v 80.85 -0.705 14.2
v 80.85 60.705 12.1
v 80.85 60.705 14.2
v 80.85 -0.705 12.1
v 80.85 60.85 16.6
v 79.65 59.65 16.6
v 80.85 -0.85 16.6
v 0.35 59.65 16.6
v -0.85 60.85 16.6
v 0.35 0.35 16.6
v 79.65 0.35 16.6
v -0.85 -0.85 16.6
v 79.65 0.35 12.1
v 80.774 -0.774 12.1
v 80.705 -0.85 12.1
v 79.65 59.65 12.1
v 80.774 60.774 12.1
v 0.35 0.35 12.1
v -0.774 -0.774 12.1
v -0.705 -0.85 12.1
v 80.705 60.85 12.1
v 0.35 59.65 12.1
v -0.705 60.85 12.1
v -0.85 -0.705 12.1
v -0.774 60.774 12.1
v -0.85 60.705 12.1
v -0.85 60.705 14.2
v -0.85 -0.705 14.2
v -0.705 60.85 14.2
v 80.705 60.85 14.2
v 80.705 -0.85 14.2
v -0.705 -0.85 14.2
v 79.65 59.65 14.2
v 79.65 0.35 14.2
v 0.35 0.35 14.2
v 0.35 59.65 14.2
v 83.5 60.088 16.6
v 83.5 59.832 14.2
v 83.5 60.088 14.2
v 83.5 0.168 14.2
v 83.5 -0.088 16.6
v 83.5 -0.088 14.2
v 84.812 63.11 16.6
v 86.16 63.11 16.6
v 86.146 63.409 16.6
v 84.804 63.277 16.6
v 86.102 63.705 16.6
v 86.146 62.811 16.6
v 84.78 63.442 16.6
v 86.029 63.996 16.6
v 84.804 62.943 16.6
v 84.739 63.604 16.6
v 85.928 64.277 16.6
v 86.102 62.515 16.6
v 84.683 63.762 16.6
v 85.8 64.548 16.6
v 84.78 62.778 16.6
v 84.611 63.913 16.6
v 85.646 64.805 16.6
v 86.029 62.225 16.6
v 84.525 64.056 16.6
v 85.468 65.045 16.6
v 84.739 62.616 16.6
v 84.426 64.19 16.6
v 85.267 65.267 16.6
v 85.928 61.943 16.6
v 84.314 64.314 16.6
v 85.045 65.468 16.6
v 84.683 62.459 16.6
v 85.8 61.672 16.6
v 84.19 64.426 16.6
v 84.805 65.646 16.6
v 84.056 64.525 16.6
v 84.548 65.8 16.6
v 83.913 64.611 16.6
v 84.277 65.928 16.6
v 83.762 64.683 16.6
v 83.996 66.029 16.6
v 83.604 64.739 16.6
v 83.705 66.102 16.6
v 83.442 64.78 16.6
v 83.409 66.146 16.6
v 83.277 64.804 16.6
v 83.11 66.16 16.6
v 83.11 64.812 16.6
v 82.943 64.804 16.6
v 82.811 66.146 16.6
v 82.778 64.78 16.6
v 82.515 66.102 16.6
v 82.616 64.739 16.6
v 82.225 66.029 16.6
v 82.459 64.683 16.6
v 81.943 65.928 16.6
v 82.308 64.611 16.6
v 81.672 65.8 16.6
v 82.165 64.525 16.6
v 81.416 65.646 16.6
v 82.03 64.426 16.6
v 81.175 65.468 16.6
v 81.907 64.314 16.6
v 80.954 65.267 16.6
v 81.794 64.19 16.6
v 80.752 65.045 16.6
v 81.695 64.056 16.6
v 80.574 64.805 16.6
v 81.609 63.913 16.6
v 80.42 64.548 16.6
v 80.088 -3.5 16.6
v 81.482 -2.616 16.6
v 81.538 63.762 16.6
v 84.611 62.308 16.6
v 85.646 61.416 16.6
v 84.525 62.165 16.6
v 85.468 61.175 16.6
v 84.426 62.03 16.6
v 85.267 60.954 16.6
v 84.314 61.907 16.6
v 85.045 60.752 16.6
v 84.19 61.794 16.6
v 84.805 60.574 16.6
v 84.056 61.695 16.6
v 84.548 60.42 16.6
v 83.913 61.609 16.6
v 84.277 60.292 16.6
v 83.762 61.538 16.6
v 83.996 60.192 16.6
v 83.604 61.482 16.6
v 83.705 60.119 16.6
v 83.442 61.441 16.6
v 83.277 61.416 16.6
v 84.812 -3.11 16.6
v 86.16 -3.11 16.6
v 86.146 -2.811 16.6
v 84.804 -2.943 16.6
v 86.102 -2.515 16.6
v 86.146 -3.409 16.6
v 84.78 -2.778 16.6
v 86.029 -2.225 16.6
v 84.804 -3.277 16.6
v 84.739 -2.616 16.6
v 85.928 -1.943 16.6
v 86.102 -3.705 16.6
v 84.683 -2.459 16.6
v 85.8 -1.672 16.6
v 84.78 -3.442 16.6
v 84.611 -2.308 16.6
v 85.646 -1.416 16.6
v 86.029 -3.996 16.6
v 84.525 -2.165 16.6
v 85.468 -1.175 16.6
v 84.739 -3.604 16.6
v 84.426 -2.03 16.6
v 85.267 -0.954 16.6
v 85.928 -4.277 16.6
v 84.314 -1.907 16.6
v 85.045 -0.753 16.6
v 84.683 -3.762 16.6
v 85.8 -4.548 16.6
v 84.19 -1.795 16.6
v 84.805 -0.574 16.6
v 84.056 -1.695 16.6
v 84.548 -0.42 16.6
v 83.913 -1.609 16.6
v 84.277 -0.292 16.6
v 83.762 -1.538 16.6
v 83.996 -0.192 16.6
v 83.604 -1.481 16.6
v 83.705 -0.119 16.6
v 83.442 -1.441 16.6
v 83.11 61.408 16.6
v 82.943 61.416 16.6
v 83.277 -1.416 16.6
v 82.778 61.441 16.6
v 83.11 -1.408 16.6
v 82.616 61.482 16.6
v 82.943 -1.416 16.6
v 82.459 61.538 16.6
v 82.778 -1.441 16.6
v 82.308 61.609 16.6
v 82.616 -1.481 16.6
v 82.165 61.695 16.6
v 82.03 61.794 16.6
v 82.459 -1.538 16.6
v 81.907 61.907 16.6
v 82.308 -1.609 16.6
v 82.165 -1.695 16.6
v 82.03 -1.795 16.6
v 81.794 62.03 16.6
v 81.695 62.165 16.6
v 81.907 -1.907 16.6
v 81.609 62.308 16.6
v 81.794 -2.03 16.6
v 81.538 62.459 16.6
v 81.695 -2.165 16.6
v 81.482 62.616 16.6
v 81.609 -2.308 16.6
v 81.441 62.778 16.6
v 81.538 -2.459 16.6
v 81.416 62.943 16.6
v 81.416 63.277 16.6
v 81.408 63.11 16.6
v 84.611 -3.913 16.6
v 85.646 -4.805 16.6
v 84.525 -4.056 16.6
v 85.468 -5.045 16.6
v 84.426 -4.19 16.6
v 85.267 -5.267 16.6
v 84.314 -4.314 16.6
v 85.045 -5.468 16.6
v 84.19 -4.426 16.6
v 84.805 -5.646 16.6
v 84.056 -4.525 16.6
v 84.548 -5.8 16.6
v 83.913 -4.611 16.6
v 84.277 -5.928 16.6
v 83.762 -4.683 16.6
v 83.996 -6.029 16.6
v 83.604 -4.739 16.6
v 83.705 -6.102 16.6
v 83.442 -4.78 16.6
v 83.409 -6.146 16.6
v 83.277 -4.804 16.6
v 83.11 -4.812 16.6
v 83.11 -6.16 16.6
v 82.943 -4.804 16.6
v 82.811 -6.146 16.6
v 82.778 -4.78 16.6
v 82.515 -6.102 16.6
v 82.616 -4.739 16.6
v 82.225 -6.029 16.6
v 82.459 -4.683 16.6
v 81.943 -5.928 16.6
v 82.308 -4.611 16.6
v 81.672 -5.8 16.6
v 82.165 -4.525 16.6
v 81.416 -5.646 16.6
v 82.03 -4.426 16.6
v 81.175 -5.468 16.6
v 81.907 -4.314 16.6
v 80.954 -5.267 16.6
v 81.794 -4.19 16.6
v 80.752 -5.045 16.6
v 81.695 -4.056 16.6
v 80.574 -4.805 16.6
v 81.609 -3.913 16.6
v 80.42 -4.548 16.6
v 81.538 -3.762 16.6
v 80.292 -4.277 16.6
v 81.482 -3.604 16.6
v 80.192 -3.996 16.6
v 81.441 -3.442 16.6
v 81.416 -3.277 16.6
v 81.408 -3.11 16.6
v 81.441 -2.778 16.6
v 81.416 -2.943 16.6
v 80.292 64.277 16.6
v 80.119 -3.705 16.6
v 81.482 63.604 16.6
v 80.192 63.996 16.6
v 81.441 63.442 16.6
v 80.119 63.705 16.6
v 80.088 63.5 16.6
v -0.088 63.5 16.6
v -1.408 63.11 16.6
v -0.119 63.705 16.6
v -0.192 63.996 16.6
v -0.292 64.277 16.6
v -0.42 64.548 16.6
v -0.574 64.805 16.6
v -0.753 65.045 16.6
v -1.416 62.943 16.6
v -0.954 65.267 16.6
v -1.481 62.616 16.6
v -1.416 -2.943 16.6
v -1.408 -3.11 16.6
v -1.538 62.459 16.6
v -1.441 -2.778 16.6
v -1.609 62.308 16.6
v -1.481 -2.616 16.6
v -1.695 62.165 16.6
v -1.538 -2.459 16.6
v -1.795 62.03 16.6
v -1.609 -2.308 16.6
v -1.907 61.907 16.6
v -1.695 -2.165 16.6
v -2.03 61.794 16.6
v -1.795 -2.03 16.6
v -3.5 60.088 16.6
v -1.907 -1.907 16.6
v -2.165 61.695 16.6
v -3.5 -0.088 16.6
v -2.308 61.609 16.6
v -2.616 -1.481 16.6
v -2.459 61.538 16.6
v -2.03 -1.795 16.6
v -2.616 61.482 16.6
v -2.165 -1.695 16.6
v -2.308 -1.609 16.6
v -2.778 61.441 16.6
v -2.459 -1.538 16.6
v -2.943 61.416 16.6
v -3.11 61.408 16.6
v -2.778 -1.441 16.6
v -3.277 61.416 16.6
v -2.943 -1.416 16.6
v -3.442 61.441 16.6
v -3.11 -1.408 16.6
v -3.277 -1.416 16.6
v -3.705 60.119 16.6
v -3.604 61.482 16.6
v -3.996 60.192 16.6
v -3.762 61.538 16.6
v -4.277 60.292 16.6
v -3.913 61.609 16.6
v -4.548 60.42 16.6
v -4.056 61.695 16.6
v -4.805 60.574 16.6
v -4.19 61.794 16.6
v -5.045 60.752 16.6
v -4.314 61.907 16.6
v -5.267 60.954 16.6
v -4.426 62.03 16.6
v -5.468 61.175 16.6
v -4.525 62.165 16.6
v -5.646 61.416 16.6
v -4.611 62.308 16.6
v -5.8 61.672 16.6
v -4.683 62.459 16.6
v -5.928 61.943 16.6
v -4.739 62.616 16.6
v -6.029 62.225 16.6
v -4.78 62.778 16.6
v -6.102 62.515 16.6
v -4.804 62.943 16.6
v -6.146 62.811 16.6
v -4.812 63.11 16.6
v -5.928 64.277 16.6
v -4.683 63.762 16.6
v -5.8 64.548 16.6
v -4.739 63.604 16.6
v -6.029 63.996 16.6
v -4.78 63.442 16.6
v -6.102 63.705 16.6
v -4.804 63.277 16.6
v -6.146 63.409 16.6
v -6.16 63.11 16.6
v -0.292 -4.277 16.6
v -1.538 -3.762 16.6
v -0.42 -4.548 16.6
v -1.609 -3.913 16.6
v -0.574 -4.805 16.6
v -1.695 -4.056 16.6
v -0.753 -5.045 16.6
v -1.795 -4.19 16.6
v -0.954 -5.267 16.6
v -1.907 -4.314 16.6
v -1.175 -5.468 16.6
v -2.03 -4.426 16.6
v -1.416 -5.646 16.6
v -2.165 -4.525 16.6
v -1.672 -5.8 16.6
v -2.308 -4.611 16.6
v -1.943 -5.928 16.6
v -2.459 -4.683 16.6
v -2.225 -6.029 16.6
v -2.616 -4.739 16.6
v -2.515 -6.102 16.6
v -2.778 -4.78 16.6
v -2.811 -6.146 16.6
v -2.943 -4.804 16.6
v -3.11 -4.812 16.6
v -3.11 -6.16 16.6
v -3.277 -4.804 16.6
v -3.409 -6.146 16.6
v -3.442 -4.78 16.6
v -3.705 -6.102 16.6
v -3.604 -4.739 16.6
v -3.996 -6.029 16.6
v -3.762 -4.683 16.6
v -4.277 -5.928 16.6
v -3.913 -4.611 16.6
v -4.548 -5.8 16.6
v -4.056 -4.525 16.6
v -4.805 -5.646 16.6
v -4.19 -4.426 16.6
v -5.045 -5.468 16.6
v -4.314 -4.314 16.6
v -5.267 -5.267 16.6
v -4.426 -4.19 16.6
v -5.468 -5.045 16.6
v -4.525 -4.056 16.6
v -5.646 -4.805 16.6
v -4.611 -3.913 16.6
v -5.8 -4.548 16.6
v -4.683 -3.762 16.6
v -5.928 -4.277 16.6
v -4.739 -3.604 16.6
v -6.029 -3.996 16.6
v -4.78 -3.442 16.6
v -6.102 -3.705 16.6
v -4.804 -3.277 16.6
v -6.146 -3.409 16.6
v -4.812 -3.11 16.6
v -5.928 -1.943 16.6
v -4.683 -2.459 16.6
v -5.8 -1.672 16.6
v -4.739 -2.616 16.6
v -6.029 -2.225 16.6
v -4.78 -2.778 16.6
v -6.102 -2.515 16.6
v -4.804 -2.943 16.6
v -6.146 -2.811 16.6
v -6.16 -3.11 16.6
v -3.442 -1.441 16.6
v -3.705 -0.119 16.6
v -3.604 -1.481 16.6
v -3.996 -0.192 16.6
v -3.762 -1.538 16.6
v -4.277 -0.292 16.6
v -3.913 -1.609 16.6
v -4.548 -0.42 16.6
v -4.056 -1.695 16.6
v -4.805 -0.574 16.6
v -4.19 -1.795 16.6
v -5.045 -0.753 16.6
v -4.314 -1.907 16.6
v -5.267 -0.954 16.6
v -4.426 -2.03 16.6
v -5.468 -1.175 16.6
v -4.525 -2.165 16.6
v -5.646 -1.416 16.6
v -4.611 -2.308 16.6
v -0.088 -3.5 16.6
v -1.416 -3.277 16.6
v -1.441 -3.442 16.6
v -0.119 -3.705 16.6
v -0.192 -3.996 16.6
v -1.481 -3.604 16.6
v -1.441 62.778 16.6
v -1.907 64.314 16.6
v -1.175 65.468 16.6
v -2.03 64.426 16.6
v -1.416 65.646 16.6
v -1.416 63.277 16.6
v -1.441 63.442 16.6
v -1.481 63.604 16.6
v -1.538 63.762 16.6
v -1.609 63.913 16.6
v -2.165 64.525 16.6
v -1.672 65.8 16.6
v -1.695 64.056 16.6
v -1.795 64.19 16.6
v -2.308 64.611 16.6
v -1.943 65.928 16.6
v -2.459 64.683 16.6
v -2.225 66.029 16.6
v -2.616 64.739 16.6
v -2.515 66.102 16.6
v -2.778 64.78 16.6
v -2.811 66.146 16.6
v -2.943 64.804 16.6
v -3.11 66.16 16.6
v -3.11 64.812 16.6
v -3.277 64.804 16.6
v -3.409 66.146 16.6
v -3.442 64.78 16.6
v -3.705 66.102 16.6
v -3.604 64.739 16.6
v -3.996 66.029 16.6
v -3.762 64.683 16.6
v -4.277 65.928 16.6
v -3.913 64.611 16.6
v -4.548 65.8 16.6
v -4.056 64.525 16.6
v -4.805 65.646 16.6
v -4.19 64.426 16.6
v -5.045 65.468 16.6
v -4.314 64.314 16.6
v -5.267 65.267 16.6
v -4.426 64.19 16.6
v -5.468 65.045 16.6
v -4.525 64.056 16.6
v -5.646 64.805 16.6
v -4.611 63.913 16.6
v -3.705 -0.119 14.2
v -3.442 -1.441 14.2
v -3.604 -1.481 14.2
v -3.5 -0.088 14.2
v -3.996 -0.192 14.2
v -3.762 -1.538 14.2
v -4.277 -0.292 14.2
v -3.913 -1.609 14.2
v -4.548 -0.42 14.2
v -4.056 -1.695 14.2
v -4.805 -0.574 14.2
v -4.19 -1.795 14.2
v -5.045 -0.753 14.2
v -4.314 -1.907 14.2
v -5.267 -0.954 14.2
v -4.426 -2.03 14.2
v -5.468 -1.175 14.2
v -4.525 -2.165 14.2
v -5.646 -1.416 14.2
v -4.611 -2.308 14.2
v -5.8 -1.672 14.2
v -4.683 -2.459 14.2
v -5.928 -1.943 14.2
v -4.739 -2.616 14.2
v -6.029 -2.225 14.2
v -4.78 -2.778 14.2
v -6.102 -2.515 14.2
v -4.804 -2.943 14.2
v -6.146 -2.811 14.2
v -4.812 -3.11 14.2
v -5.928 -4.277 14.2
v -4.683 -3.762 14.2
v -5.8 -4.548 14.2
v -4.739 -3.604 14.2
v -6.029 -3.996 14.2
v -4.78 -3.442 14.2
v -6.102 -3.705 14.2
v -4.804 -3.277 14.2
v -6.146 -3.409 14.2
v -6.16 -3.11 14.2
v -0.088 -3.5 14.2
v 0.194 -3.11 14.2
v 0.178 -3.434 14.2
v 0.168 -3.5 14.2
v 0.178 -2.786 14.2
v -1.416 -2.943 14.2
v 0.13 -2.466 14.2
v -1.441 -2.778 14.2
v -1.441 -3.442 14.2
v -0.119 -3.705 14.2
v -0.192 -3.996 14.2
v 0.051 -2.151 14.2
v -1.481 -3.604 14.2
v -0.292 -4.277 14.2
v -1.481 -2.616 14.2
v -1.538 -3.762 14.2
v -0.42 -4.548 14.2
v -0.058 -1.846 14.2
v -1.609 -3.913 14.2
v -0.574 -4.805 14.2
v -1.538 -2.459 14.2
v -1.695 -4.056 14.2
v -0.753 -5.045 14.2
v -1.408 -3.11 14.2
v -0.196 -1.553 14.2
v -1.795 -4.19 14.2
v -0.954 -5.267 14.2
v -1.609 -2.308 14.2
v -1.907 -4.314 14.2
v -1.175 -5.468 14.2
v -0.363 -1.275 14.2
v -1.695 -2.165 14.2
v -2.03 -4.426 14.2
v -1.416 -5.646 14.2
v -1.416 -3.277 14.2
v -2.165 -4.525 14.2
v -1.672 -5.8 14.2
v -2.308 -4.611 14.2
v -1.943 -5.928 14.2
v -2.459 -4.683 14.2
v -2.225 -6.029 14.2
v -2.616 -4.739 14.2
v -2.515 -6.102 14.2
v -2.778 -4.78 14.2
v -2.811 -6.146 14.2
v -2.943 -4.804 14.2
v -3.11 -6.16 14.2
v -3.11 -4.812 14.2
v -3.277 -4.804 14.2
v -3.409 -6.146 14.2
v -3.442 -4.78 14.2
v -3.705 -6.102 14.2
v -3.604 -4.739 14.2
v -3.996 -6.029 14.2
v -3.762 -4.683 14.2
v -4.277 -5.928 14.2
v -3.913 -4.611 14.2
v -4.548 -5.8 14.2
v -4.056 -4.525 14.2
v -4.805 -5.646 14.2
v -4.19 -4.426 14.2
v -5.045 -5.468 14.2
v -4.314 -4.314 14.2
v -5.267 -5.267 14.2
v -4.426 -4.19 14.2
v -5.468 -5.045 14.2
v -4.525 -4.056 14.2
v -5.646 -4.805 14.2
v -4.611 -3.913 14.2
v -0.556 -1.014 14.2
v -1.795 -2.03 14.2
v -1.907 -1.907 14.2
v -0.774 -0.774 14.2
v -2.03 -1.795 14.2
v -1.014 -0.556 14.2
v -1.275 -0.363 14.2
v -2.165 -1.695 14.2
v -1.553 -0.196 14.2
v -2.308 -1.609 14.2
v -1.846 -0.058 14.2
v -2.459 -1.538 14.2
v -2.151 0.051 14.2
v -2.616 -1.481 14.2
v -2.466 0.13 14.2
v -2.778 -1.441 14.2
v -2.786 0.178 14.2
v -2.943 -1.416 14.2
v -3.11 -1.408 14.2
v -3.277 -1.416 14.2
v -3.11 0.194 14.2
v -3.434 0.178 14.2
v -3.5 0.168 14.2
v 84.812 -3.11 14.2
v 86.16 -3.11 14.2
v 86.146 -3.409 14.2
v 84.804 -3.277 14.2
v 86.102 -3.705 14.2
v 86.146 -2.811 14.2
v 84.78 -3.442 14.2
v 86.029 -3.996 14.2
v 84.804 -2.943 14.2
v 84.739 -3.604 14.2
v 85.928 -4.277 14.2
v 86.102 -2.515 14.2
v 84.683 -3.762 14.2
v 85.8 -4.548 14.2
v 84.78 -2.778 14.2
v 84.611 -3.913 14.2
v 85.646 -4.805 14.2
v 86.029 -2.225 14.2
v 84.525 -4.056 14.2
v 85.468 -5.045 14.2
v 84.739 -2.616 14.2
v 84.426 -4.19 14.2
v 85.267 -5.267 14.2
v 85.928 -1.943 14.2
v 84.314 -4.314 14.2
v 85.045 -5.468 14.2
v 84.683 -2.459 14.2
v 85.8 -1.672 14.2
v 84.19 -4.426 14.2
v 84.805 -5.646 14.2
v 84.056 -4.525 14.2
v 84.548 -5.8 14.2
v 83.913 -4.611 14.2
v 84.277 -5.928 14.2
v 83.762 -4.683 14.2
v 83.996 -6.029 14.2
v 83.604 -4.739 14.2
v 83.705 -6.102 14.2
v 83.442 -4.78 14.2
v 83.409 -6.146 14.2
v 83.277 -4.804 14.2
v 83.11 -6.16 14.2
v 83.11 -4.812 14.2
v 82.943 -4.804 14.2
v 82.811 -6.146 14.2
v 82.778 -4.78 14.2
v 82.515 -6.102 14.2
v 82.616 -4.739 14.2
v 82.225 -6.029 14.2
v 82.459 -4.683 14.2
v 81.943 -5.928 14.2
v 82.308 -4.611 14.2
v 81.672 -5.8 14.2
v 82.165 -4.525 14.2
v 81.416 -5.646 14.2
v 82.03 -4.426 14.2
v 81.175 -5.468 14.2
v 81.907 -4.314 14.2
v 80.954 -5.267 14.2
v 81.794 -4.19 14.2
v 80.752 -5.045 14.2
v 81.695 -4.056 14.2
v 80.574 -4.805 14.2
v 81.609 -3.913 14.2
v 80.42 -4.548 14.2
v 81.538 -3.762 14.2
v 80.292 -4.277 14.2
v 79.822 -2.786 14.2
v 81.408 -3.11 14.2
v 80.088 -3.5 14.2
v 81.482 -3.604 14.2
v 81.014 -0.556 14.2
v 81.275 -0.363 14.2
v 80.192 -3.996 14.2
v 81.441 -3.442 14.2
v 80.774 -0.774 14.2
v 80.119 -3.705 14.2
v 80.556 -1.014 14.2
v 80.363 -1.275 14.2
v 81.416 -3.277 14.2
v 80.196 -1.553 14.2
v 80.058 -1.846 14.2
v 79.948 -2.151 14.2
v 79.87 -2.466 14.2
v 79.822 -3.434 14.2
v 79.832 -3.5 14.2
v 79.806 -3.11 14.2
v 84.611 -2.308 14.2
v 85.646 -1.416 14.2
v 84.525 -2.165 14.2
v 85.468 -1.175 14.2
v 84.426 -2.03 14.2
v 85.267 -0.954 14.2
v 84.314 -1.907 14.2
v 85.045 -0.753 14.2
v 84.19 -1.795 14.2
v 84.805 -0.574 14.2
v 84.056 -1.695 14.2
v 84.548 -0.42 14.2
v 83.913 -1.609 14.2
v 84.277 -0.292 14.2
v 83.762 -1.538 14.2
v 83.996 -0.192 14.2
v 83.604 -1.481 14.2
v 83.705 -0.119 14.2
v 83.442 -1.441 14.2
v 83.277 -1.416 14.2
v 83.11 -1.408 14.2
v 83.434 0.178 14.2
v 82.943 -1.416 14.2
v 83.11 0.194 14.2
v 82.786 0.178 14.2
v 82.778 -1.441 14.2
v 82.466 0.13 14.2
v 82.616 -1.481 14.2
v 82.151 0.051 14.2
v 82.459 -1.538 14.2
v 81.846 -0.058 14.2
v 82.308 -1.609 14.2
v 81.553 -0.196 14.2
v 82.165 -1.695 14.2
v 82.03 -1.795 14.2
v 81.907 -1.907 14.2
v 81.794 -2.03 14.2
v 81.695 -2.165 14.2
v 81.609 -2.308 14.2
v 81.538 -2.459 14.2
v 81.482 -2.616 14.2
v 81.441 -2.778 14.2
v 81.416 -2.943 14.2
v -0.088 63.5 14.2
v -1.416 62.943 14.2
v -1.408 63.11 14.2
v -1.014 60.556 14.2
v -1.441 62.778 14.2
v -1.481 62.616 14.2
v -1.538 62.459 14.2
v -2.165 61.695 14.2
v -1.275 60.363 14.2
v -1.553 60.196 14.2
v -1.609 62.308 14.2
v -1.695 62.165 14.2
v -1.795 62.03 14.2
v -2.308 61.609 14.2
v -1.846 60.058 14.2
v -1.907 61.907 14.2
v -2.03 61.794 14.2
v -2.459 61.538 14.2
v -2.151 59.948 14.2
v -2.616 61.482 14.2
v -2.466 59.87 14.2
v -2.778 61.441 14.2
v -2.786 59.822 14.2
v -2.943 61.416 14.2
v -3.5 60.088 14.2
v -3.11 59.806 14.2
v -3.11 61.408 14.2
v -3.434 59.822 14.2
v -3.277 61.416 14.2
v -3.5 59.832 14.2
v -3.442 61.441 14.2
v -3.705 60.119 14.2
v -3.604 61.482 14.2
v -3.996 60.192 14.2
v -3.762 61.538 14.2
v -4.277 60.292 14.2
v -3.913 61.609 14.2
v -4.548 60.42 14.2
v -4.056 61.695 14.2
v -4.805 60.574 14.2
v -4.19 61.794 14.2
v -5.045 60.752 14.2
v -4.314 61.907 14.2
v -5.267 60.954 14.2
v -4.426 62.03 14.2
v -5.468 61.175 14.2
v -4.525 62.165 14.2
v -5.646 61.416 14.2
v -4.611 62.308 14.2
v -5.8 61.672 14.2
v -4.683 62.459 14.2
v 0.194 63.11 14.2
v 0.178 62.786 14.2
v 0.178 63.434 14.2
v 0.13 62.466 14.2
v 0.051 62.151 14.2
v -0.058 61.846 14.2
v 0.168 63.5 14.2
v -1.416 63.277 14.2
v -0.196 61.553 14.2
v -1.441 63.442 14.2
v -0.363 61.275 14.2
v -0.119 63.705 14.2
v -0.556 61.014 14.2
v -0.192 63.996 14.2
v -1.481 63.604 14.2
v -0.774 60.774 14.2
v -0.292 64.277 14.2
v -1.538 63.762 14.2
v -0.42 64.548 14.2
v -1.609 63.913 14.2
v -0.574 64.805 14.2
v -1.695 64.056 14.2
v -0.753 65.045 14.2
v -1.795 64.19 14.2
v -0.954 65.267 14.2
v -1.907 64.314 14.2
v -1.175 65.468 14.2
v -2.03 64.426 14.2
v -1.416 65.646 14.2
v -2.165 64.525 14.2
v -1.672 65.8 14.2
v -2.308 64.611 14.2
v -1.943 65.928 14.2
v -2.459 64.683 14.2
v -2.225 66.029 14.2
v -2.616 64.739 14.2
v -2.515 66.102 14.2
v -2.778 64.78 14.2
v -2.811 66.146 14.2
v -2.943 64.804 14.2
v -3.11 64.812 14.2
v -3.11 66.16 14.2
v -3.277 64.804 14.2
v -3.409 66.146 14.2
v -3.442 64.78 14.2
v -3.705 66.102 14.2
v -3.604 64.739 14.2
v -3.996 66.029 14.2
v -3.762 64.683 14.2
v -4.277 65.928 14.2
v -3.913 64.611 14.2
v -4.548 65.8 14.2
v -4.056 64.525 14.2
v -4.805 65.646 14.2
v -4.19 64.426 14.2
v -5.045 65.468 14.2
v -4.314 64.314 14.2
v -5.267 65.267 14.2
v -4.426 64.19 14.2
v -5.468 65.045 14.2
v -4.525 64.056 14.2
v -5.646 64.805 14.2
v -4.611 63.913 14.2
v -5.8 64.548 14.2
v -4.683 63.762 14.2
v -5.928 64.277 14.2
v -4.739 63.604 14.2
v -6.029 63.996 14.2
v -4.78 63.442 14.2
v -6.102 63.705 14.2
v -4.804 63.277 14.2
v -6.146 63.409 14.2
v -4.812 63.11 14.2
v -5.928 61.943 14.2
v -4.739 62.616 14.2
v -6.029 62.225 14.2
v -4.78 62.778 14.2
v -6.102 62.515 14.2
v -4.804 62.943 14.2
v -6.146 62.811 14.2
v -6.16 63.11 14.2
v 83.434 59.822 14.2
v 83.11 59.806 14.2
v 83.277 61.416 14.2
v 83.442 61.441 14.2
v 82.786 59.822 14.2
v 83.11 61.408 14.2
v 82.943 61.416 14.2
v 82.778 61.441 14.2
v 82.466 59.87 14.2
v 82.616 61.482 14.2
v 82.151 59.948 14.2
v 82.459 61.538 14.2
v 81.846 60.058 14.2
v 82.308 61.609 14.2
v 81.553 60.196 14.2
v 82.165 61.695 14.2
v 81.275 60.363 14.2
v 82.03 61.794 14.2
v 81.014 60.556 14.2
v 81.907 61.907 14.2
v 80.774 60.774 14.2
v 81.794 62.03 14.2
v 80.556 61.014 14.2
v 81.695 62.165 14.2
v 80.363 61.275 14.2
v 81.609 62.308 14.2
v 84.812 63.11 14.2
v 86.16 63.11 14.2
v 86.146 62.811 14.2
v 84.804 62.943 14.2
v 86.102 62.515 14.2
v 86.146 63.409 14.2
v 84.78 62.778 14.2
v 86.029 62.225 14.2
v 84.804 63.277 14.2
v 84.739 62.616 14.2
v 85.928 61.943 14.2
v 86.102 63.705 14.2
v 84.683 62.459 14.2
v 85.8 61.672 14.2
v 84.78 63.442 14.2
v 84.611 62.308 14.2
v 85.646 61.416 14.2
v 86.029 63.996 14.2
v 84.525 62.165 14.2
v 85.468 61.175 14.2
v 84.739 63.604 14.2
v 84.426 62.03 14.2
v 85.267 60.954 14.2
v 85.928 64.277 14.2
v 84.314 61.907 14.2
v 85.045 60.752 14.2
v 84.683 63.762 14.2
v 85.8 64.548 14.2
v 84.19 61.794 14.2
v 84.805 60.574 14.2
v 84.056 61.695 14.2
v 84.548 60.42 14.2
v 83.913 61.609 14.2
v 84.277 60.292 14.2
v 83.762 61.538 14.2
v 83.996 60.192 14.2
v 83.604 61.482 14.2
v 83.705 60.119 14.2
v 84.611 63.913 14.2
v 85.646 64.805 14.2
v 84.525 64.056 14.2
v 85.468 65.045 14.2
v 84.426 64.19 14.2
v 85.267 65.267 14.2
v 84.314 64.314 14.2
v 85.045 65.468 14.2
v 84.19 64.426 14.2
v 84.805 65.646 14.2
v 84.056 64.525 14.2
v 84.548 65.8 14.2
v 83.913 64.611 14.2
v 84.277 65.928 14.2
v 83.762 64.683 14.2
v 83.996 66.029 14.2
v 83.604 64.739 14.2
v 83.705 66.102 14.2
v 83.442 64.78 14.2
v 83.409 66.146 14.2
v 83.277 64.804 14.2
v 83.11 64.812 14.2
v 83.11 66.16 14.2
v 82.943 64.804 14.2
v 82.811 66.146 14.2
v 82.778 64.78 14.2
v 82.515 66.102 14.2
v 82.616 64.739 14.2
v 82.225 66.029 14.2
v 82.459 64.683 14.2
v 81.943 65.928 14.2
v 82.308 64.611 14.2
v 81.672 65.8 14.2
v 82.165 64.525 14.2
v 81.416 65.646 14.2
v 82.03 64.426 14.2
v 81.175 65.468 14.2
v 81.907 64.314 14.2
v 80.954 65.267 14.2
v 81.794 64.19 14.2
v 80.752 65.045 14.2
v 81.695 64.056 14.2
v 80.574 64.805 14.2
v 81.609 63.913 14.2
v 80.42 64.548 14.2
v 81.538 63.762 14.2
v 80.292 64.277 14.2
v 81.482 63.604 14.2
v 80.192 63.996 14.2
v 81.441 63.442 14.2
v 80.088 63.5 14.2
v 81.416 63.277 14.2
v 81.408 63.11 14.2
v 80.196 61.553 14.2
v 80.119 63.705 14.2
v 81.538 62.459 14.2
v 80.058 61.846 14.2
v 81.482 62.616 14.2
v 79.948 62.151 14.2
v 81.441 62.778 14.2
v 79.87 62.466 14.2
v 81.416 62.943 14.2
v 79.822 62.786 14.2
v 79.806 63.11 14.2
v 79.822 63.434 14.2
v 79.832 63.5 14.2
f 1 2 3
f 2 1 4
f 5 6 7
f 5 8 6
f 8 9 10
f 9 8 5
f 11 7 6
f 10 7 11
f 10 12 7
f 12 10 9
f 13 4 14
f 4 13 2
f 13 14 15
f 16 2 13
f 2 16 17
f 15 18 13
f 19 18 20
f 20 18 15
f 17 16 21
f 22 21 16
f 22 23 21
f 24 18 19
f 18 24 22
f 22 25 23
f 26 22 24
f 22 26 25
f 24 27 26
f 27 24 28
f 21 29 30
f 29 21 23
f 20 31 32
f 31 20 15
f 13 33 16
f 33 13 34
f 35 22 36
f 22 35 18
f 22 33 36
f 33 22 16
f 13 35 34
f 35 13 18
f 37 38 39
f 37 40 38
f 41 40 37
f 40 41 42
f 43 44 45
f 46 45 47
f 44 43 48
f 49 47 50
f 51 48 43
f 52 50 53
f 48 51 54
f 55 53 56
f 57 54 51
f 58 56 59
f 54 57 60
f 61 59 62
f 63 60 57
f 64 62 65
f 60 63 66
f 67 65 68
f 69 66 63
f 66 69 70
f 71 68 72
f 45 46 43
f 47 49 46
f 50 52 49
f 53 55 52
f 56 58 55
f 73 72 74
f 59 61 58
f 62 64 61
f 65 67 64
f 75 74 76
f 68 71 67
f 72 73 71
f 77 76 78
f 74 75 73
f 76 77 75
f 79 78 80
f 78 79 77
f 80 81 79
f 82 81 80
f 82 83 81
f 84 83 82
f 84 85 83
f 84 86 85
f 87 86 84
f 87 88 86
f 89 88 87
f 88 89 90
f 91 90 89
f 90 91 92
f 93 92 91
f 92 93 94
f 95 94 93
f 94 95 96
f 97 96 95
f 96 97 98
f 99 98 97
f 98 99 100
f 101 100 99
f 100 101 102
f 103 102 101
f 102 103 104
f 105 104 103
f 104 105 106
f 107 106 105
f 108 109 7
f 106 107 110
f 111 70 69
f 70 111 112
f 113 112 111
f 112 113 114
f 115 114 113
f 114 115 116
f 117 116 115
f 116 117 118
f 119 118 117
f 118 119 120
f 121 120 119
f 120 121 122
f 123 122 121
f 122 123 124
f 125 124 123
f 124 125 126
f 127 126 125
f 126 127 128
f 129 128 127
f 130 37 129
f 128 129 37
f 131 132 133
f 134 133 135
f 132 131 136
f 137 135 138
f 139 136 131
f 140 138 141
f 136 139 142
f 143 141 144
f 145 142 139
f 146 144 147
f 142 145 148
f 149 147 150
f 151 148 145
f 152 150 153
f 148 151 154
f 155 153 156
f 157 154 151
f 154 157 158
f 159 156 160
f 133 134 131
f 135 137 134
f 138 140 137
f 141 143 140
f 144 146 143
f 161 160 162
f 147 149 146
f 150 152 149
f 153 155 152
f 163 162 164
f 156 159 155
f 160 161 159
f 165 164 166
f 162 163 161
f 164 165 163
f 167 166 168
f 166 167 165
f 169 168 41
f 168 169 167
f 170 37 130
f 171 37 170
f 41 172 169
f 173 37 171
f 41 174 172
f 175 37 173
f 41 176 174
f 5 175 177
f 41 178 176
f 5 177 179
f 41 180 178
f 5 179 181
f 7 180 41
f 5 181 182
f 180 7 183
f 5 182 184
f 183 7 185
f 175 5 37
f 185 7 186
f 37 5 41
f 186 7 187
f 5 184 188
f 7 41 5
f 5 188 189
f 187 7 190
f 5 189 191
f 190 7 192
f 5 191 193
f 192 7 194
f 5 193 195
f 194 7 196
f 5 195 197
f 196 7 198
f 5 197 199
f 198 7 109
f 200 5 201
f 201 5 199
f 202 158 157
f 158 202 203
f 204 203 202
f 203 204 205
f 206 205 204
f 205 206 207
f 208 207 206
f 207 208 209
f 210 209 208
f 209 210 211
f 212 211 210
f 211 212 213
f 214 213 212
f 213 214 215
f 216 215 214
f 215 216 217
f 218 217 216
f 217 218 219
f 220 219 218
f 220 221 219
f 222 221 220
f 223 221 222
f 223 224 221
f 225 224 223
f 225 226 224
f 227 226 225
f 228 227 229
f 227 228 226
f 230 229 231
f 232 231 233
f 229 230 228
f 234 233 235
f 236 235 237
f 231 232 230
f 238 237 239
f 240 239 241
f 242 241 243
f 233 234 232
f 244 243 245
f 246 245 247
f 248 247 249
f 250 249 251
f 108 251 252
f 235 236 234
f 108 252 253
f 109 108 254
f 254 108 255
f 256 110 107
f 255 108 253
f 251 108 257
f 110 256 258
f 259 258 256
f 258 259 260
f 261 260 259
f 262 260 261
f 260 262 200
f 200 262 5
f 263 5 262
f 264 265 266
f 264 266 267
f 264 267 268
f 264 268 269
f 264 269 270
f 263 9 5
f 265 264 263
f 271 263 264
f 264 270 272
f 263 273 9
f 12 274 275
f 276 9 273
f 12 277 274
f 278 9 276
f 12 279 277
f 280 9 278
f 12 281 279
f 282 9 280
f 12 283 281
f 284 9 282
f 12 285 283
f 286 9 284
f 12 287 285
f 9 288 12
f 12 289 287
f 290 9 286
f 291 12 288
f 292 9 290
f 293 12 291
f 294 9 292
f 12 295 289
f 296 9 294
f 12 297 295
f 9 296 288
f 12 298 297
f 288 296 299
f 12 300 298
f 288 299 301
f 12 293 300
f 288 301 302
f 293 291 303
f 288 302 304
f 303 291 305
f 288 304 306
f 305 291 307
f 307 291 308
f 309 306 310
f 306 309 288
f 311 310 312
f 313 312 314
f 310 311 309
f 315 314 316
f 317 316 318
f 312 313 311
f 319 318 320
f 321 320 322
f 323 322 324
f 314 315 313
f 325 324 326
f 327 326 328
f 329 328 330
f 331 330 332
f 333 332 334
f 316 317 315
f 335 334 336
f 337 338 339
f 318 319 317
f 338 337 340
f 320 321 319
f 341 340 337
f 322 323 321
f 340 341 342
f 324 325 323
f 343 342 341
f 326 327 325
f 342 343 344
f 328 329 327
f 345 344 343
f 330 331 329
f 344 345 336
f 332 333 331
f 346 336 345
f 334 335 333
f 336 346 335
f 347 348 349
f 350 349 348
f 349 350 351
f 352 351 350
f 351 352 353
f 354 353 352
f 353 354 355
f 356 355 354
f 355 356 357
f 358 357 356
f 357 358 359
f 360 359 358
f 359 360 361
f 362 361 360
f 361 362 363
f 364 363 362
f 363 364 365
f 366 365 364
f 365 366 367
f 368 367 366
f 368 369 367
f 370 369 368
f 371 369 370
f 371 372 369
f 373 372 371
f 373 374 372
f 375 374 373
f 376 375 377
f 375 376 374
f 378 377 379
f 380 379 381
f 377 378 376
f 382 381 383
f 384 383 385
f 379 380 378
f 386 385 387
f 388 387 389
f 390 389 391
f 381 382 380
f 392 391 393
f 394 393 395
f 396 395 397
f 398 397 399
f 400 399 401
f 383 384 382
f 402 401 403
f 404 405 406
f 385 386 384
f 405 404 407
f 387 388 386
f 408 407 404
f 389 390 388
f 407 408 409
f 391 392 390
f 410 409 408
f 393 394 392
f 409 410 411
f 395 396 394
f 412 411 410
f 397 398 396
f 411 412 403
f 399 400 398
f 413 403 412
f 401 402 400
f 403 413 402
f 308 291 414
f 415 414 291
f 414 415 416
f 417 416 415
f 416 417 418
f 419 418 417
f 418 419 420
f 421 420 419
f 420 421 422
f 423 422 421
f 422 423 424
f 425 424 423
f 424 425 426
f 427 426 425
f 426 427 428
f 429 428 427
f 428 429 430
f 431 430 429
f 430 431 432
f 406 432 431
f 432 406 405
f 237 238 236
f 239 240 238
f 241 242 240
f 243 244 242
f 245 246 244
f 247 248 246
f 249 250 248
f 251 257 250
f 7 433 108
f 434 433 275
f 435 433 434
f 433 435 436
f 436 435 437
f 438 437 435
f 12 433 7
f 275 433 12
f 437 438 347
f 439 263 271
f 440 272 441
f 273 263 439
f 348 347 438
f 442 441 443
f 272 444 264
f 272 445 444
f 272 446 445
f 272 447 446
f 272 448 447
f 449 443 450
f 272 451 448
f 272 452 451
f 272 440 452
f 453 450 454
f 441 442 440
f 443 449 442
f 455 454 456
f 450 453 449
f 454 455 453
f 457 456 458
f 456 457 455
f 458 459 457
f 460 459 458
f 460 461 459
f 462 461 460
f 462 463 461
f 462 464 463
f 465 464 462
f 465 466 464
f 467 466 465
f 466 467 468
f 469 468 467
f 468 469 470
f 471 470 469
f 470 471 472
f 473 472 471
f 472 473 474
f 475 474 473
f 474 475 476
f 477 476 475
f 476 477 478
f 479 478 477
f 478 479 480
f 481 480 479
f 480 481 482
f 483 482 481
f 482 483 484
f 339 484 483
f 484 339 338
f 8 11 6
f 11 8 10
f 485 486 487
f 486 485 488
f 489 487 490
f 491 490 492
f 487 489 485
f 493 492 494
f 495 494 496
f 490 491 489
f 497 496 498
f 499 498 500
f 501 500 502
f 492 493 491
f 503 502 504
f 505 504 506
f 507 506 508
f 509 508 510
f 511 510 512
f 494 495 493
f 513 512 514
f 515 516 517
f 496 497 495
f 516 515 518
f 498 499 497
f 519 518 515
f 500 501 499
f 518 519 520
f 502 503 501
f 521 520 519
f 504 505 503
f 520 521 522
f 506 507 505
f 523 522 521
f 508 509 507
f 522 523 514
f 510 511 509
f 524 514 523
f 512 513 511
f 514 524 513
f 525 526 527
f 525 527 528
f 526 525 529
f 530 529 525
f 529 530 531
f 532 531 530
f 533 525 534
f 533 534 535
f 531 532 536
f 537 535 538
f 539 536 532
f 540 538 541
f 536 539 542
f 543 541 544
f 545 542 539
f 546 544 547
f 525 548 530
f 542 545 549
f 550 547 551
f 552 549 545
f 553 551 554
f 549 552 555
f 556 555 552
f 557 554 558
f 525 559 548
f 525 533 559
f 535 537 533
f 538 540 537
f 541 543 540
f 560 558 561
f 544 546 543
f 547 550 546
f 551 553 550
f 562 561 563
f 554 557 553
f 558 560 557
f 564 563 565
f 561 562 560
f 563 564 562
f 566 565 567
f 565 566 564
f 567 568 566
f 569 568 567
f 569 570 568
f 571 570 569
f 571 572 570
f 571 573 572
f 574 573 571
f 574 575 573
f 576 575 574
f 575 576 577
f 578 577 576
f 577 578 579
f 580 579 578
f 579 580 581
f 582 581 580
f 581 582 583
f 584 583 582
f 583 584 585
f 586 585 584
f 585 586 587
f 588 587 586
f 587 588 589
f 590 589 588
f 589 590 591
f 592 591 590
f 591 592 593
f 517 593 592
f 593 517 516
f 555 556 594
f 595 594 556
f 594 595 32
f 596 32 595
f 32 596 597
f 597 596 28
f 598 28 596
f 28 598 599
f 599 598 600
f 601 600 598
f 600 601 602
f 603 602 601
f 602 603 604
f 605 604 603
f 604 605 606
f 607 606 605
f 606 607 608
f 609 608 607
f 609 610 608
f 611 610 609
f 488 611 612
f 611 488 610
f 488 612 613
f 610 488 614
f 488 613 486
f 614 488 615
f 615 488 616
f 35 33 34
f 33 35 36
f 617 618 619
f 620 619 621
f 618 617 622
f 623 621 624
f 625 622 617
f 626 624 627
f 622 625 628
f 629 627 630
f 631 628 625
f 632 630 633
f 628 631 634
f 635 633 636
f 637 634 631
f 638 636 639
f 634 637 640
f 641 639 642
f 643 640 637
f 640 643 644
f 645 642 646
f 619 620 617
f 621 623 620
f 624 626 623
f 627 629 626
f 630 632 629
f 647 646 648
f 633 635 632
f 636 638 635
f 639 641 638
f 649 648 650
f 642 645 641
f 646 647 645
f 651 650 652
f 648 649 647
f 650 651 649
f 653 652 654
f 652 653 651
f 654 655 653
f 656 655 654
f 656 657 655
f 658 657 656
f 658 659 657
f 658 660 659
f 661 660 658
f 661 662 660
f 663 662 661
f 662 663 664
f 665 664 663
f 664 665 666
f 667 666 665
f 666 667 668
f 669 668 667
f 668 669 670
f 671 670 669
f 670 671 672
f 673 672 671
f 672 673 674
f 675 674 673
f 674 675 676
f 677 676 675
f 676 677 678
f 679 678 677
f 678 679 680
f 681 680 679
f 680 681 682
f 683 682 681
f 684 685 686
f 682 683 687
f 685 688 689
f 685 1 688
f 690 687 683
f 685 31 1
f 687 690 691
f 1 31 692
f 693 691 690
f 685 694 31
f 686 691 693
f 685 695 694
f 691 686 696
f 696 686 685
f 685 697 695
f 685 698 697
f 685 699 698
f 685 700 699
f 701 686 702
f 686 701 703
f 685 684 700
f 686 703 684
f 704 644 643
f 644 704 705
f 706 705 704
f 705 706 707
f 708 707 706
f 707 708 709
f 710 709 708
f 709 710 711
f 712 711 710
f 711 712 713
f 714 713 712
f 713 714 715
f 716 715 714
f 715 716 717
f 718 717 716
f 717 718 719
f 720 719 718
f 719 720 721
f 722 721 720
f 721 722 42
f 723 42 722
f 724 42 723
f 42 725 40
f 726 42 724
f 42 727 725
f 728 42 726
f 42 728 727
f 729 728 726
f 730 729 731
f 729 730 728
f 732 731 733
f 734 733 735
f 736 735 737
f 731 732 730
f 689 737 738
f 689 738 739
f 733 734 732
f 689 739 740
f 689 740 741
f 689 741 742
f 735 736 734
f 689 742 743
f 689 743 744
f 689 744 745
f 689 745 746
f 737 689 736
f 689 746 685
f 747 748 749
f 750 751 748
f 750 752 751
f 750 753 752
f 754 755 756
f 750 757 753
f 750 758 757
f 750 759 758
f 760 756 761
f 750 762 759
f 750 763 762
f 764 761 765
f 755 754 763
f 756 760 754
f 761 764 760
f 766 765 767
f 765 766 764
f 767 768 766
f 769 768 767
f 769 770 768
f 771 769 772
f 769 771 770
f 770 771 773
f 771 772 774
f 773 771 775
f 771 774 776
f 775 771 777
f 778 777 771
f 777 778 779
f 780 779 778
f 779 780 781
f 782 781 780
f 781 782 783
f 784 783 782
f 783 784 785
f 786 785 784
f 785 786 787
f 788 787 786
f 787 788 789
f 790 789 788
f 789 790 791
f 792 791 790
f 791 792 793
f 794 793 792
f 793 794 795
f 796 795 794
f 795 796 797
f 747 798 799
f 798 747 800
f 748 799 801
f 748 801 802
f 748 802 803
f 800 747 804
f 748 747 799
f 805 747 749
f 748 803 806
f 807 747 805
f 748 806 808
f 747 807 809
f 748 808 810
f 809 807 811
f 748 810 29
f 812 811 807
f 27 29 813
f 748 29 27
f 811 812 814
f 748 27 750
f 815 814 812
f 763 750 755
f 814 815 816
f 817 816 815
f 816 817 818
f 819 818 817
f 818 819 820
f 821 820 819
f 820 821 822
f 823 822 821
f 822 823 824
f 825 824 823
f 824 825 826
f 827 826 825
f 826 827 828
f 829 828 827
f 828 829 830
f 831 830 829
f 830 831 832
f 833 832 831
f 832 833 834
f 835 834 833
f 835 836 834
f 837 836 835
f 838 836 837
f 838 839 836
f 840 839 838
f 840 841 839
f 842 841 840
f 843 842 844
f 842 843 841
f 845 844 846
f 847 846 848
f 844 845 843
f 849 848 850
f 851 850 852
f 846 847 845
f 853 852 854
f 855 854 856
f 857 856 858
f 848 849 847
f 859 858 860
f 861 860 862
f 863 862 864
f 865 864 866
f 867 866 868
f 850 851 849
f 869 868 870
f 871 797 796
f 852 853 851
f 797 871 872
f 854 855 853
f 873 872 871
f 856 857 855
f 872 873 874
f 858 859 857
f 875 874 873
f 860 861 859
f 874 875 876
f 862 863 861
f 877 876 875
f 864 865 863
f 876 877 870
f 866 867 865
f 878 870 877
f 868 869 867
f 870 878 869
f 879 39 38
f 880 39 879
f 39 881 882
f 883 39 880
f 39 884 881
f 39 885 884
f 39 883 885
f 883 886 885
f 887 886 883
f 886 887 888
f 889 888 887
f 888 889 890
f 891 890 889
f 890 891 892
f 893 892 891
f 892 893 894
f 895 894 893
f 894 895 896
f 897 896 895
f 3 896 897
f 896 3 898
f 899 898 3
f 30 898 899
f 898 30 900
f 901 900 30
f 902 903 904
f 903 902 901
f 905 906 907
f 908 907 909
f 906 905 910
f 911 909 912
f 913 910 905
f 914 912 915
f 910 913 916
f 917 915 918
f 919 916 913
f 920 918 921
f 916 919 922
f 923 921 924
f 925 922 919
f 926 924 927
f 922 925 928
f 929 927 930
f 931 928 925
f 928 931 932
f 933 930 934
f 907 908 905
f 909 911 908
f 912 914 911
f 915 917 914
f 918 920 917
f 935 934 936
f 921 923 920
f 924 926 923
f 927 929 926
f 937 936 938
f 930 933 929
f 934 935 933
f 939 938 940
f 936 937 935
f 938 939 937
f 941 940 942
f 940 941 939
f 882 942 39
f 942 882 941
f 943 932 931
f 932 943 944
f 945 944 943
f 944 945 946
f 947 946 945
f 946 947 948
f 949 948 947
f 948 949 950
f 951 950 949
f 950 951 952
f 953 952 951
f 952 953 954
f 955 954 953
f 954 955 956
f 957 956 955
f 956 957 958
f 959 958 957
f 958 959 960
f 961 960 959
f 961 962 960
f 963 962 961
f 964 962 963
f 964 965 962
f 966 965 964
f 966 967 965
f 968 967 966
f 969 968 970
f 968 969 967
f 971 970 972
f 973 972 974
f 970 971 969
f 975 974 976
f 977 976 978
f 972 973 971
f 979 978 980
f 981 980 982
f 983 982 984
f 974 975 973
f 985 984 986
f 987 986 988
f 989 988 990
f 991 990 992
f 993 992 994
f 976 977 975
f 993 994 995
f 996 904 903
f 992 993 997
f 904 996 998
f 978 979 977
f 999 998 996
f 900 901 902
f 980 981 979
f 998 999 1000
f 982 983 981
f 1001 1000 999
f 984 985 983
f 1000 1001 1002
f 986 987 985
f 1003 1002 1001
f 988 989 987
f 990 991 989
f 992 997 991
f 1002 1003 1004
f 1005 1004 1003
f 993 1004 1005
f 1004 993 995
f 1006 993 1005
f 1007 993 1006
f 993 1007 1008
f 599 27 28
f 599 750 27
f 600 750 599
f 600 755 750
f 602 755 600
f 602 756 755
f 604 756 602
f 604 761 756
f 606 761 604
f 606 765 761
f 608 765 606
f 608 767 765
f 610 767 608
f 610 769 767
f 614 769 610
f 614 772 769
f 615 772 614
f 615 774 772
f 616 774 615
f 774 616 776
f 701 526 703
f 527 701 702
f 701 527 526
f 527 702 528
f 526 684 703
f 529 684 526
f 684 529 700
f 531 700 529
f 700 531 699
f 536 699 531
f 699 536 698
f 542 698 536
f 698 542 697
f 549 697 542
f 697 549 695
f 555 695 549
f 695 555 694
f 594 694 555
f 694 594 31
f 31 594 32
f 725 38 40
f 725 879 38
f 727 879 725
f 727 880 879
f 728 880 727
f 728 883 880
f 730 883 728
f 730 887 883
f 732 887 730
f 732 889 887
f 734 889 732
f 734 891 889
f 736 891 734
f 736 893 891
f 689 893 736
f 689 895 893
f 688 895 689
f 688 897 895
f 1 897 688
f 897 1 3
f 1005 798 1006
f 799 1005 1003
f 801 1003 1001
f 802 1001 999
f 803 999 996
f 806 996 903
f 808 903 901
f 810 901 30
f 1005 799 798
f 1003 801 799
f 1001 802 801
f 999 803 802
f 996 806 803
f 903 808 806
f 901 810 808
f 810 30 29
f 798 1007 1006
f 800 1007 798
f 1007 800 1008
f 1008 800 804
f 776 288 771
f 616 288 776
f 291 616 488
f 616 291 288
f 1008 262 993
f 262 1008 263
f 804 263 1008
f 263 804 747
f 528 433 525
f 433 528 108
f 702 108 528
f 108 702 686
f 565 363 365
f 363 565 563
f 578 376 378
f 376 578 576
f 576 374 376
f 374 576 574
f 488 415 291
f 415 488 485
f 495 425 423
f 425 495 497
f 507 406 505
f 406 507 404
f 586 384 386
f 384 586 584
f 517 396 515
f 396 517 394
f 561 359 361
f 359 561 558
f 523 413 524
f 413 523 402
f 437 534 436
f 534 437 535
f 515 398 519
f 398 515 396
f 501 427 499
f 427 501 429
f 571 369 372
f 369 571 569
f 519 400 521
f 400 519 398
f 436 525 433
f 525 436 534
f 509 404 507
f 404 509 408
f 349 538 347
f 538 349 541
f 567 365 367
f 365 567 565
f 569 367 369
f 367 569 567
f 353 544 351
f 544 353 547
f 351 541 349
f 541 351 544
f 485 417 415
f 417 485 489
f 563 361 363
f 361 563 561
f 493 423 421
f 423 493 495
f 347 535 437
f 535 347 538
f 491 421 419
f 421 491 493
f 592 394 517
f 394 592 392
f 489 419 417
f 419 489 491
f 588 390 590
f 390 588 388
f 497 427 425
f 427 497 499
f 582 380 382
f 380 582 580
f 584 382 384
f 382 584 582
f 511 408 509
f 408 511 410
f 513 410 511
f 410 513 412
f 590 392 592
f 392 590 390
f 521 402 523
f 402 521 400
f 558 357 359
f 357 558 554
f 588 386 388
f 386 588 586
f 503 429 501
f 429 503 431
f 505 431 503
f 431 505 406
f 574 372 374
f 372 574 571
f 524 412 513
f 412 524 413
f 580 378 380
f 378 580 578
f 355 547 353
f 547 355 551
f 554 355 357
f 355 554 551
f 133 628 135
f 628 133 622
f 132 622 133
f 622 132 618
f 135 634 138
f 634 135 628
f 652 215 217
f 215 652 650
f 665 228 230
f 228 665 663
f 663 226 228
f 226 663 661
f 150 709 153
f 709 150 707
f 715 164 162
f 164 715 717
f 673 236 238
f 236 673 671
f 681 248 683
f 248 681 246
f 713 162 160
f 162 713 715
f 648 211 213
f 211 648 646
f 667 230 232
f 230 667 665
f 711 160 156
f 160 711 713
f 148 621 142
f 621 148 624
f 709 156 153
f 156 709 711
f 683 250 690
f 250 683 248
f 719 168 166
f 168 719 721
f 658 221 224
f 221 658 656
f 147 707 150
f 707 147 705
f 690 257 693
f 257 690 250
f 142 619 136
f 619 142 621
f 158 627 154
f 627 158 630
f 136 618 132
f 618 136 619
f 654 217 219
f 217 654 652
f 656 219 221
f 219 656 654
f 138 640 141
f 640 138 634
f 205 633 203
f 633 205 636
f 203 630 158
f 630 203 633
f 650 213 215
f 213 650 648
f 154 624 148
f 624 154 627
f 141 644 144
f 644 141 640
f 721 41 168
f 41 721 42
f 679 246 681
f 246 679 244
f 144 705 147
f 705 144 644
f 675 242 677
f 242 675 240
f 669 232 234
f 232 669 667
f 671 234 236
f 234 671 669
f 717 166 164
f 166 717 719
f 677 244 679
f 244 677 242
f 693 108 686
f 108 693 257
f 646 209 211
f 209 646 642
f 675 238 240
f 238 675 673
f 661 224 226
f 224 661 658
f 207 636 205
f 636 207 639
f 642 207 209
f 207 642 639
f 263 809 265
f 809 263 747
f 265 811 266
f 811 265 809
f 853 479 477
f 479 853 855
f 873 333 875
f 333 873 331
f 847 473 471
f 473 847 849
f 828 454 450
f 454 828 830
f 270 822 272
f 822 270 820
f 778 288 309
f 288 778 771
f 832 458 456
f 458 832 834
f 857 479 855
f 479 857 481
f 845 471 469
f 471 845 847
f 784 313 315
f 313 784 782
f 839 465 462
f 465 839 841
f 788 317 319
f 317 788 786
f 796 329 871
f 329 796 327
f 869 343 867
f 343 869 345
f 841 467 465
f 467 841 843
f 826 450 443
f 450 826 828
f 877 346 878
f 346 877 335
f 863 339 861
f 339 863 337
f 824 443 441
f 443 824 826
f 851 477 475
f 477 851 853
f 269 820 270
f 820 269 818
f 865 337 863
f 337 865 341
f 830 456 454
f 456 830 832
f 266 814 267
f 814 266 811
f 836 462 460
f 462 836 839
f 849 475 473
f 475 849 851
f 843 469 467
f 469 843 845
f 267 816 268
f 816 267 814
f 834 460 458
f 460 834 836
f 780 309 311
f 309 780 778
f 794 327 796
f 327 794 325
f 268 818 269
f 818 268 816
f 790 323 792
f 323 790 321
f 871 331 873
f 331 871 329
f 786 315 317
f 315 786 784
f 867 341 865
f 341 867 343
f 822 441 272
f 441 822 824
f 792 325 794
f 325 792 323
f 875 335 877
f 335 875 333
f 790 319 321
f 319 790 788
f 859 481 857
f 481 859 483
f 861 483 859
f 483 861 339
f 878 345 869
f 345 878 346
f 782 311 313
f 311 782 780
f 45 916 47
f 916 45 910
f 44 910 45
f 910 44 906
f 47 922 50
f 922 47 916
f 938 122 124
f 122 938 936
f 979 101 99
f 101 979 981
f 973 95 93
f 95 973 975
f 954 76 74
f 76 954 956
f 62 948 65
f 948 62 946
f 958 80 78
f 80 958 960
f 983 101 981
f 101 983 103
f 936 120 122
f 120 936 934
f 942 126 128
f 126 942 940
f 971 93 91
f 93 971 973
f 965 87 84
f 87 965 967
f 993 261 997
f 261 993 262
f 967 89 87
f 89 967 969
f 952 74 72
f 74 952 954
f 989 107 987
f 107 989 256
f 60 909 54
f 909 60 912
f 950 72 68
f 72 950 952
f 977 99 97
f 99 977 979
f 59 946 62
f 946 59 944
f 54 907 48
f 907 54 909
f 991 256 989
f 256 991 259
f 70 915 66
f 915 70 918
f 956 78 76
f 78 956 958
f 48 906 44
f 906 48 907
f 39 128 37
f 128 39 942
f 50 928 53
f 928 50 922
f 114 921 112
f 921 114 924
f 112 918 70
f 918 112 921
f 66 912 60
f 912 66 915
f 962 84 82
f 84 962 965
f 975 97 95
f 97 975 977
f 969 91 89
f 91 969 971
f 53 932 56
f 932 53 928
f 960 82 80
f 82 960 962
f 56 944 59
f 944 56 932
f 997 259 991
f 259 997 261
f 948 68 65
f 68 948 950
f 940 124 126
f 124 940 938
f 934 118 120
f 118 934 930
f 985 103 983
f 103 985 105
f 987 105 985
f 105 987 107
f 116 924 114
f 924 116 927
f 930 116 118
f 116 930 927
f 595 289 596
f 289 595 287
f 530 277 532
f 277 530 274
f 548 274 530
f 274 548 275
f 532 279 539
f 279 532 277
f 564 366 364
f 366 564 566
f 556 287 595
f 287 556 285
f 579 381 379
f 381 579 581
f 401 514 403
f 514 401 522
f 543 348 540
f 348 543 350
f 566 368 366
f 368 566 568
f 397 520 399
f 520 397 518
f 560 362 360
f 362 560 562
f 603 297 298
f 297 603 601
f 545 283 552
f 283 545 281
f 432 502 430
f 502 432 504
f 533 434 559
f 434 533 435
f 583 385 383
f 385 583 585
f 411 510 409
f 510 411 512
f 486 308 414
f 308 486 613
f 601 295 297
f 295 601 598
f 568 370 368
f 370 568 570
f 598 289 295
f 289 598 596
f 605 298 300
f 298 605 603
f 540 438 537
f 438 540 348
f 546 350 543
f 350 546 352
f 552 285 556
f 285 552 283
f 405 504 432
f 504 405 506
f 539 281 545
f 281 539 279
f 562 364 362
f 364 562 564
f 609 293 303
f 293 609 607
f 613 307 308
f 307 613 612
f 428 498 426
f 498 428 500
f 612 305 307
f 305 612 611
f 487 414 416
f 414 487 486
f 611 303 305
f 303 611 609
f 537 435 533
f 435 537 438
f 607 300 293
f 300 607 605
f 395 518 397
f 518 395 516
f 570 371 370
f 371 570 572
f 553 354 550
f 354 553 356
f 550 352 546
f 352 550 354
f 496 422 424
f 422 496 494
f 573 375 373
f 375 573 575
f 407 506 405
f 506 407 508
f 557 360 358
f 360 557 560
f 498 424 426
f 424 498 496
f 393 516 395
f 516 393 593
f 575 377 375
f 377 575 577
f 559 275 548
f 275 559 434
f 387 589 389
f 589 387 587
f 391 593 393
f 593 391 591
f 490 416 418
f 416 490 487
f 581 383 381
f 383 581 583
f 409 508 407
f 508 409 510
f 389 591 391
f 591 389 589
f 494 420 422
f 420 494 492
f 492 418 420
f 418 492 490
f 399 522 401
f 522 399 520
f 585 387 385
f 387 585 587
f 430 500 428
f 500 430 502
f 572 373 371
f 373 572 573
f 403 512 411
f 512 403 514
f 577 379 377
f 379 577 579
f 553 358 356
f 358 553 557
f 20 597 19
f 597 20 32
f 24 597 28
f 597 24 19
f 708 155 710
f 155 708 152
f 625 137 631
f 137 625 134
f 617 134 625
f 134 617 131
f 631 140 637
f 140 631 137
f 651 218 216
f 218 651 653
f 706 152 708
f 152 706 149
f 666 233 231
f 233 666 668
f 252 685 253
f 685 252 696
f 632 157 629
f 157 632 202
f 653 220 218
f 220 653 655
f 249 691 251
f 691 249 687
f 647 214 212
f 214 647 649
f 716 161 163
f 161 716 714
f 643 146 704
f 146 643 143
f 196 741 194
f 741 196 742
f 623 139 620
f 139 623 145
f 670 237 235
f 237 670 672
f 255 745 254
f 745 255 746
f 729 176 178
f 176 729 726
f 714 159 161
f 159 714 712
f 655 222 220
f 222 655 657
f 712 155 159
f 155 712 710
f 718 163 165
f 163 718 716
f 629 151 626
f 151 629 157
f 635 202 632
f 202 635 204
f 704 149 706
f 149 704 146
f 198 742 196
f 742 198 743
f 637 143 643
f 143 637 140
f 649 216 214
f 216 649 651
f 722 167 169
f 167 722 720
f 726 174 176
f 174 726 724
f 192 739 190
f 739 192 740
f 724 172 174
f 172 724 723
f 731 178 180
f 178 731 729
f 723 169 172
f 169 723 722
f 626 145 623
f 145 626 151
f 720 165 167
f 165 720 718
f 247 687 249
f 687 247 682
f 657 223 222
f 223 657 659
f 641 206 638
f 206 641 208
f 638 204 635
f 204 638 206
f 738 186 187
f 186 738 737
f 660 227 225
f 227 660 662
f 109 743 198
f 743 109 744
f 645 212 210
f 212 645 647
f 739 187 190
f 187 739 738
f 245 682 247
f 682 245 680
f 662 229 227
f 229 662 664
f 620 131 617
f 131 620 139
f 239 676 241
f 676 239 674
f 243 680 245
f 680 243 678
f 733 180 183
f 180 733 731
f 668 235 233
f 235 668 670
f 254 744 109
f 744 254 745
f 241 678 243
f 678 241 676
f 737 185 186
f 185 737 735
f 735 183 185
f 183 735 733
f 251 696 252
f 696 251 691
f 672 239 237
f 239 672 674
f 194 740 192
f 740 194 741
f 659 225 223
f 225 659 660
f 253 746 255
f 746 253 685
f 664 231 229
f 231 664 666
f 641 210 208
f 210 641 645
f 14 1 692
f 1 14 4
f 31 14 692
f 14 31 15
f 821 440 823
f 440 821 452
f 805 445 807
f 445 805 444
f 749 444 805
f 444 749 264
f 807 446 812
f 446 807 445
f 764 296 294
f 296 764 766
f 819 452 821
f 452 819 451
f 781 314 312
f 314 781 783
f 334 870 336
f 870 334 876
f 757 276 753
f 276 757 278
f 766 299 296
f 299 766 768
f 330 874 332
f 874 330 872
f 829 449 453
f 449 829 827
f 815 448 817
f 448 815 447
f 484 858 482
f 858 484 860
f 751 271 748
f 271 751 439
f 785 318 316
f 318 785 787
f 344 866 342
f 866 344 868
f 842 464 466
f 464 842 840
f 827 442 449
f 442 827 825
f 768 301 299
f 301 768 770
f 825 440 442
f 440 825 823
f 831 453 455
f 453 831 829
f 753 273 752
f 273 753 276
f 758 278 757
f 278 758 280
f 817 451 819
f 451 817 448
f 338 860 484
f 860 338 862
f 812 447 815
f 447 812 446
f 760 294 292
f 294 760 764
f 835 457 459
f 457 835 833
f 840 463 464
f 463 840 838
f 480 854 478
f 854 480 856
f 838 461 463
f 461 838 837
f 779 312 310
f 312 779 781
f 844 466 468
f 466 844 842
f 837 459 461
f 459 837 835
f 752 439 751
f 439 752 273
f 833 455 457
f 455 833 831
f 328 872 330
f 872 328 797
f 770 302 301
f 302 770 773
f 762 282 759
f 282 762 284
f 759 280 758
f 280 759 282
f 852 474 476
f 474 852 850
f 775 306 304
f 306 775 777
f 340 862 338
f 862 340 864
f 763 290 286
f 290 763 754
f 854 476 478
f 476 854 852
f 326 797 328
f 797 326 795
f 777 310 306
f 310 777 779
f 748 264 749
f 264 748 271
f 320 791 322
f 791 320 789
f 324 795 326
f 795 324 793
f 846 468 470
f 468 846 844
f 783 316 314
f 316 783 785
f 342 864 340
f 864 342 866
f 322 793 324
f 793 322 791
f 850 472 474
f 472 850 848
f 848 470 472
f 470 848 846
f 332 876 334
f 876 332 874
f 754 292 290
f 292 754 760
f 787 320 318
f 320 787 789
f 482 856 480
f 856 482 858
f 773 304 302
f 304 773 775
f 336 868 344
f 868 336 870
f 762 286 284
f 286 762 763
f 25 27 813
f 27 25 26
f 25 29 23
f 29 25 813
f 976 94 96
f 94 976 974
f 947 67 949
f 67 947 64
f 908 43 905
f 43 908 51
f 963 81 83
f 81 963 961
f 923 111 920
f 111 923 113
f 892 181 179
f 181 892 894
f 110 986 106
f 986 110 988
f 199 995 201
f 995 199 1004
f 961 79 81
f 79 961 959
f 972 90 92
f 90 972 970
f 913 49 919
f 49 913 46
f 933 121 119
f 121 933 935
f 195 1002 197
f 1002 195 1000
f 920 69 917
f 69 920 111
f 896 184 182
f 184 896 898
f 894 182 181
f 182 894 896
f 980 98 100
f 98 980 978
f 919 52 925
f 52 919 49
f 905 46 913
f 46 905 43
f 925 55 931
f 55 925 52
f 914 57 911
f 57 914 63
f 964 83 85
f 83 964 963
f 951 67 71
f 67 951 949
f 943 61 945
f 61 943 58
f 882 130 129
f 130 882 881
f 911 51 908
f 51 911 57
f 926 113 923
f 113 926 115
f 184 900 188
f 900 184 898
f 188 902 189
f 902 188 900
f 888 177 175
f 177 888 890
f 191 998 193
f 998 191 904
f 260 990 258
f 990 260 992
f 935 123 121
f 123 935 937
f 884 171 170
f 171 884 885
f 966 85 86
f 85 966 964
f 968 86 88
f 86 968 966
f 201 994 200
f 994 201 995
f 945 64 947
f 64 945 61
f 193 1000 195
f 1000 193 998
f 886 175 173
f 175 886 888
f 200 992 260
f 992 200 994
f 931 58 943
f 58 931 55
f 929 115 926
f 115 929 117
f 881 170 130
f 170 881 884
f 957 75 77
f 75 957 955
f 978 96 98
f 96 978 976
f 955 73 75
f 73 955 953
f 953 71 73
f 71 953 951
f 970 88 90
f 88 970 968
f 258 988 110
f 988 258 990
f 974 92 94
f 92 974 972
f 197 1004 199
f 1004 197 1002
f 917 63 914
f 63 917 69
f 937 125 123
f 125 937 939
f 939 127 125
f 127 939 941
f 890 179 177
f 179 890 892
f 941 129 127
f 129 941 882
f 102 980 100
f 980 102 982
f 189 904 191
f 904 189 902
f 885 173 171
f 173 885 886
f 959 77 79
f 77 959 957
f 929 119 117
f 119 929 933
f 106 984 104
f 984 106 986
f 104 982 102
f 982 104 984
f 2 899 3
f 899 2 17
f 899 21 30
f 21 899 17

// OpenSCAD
// body lid
difference() {
  union() {
    // body lid (lid_plate)
    multmatrix([[1, 0, 0, 40], [0, 1, 0, 30], [0, 0, 1, 14.2], [0, 0, 0, 1]]) translate([-43.5, -33.5, 0]) cube([87, 67, 2.4]);
    // add lid_lip (lip)
    multmatrix([[1, 0, 0, 40], [0, 1, 0, 30], [0, 0, 1, 12.1], [0, 0, 0, 1]]) difference() { translate([-40.85, -30.85, 0]) cube([81.7, 61.7, 4.5]); translate([0, 0, -1]) translate([-39.65, -29.65, 0]) cube([79.3, 59.3, 6.5]); }
    // add boss_1_pad (pad)
    multmatrix([[1, 0, 0, -3.110229], [0, 1, 0, -3.110229], [0, 0, 1, 14.2], [0, 0, 0, 1]]) cylinder(h=2.4, d=6.1, $fn=64);
    // add boss_2_pad (pad)
    multmatrix([[1, 0, 0, 83.110229], [0, 1, 0, -3.110229], [0, 0, 1, 14.2], [0, 0, 0, 1]]) cylinder(h=2.4, d=6.1, $fn=64);
    // add boss_3_pad (pad)
    multmatrix([[1, 0, 0, -3.110229], [0, 1, 0, 63.110229], [0, 0, 1, 14.2], [0, 0, 0, 1]]) cylinder(h=2.4, d=6.1, $fn=64);
    // add boss_4_pad (pad)
    multmatrix([[1, 0, 0, 83.110229], [0, 1, 0, 63.110229], [0, 0, 1, 14.2], [0, 0, 0, 1]]) cylinder(h=2.4, d=6.1, $fn=64);
  }
  // cut boss_1_lid_hole (screw_hole)
  multmatrix([[1, 0, 0, -3.110229], [0, 1, 0, -3.110229], [0, 0, 1, 13.2], [0, 0, 0, 1]]) cylinder(h=4.4, d=3.4041, $fn=64);
  // cut boss_1_lip_notch (lip_notch)
  multmatrix([[1, 0, 0, -3.110229], [0, 1, 0, -3.110229], [0, 0, 1, 11.1], [0, 0, 0, 1]]) cylinder(h=3.1, d=6.60796, $fn=64);
  // cut boss_2_lid_hole (screw_hole)
  multmatrix([[1, 0, 0, 83.110229], [0, 1, 0, -3.110229], [0, 0, 1, 13.2], [0, 0, 0, 1]]) cylinder(h=4.4, d=3.4041, $fn=64);
  // cut boss_2_lip_notch (lip_notch)
  multmatrix([[1, 0, 0, 83.110229], [0, 1, 0, -3.110229], [0, 0, 1, 11.1], [0, 0, 0, 1]]) cylinder(h=3.1, d=6.60796, $fn=64);
  // cut boss_3_lid_hole (screw_hole)
  multmatrix([[1, 0, 0, -3.110229], [0, 1, 0, 63.110229], [0, 0, 1, 13.2], [0, 0, 0, 1]]) cylinder(h=4.4, d=3.4041, $fn=64);
  // cut boss_3_lip_notch (lip_notch)
  multmatrix([[1, 0, 0, -3.110229], [0, 1, 0, 63.110229], [0, 0, 1, 11.1], [0, 0, 0, 1]]) cylinder(h=3.1, d=6.60796, $fn=64);
  // cut boss_4_lid_hole (screw_hole)
  multmatrix([[1, 0, 0, 83.110229], [0, 1, 0, 63.110229], [0, 0, 1, 13.2], [0, 0, 0, 1]]) cylinder(h=4.4, d=3.4041, $fn=64);
  // cut boss_4_lip_notch (lip_notch)
  multmatrix([[1, 0, 0, 83.110229], [0, 1, 0, 63.110229], [0, 0, 1, 11.1], [0, 0, 0, 1]]) cylinder(h=3.1, d=6.60796, $fn=64);
}
